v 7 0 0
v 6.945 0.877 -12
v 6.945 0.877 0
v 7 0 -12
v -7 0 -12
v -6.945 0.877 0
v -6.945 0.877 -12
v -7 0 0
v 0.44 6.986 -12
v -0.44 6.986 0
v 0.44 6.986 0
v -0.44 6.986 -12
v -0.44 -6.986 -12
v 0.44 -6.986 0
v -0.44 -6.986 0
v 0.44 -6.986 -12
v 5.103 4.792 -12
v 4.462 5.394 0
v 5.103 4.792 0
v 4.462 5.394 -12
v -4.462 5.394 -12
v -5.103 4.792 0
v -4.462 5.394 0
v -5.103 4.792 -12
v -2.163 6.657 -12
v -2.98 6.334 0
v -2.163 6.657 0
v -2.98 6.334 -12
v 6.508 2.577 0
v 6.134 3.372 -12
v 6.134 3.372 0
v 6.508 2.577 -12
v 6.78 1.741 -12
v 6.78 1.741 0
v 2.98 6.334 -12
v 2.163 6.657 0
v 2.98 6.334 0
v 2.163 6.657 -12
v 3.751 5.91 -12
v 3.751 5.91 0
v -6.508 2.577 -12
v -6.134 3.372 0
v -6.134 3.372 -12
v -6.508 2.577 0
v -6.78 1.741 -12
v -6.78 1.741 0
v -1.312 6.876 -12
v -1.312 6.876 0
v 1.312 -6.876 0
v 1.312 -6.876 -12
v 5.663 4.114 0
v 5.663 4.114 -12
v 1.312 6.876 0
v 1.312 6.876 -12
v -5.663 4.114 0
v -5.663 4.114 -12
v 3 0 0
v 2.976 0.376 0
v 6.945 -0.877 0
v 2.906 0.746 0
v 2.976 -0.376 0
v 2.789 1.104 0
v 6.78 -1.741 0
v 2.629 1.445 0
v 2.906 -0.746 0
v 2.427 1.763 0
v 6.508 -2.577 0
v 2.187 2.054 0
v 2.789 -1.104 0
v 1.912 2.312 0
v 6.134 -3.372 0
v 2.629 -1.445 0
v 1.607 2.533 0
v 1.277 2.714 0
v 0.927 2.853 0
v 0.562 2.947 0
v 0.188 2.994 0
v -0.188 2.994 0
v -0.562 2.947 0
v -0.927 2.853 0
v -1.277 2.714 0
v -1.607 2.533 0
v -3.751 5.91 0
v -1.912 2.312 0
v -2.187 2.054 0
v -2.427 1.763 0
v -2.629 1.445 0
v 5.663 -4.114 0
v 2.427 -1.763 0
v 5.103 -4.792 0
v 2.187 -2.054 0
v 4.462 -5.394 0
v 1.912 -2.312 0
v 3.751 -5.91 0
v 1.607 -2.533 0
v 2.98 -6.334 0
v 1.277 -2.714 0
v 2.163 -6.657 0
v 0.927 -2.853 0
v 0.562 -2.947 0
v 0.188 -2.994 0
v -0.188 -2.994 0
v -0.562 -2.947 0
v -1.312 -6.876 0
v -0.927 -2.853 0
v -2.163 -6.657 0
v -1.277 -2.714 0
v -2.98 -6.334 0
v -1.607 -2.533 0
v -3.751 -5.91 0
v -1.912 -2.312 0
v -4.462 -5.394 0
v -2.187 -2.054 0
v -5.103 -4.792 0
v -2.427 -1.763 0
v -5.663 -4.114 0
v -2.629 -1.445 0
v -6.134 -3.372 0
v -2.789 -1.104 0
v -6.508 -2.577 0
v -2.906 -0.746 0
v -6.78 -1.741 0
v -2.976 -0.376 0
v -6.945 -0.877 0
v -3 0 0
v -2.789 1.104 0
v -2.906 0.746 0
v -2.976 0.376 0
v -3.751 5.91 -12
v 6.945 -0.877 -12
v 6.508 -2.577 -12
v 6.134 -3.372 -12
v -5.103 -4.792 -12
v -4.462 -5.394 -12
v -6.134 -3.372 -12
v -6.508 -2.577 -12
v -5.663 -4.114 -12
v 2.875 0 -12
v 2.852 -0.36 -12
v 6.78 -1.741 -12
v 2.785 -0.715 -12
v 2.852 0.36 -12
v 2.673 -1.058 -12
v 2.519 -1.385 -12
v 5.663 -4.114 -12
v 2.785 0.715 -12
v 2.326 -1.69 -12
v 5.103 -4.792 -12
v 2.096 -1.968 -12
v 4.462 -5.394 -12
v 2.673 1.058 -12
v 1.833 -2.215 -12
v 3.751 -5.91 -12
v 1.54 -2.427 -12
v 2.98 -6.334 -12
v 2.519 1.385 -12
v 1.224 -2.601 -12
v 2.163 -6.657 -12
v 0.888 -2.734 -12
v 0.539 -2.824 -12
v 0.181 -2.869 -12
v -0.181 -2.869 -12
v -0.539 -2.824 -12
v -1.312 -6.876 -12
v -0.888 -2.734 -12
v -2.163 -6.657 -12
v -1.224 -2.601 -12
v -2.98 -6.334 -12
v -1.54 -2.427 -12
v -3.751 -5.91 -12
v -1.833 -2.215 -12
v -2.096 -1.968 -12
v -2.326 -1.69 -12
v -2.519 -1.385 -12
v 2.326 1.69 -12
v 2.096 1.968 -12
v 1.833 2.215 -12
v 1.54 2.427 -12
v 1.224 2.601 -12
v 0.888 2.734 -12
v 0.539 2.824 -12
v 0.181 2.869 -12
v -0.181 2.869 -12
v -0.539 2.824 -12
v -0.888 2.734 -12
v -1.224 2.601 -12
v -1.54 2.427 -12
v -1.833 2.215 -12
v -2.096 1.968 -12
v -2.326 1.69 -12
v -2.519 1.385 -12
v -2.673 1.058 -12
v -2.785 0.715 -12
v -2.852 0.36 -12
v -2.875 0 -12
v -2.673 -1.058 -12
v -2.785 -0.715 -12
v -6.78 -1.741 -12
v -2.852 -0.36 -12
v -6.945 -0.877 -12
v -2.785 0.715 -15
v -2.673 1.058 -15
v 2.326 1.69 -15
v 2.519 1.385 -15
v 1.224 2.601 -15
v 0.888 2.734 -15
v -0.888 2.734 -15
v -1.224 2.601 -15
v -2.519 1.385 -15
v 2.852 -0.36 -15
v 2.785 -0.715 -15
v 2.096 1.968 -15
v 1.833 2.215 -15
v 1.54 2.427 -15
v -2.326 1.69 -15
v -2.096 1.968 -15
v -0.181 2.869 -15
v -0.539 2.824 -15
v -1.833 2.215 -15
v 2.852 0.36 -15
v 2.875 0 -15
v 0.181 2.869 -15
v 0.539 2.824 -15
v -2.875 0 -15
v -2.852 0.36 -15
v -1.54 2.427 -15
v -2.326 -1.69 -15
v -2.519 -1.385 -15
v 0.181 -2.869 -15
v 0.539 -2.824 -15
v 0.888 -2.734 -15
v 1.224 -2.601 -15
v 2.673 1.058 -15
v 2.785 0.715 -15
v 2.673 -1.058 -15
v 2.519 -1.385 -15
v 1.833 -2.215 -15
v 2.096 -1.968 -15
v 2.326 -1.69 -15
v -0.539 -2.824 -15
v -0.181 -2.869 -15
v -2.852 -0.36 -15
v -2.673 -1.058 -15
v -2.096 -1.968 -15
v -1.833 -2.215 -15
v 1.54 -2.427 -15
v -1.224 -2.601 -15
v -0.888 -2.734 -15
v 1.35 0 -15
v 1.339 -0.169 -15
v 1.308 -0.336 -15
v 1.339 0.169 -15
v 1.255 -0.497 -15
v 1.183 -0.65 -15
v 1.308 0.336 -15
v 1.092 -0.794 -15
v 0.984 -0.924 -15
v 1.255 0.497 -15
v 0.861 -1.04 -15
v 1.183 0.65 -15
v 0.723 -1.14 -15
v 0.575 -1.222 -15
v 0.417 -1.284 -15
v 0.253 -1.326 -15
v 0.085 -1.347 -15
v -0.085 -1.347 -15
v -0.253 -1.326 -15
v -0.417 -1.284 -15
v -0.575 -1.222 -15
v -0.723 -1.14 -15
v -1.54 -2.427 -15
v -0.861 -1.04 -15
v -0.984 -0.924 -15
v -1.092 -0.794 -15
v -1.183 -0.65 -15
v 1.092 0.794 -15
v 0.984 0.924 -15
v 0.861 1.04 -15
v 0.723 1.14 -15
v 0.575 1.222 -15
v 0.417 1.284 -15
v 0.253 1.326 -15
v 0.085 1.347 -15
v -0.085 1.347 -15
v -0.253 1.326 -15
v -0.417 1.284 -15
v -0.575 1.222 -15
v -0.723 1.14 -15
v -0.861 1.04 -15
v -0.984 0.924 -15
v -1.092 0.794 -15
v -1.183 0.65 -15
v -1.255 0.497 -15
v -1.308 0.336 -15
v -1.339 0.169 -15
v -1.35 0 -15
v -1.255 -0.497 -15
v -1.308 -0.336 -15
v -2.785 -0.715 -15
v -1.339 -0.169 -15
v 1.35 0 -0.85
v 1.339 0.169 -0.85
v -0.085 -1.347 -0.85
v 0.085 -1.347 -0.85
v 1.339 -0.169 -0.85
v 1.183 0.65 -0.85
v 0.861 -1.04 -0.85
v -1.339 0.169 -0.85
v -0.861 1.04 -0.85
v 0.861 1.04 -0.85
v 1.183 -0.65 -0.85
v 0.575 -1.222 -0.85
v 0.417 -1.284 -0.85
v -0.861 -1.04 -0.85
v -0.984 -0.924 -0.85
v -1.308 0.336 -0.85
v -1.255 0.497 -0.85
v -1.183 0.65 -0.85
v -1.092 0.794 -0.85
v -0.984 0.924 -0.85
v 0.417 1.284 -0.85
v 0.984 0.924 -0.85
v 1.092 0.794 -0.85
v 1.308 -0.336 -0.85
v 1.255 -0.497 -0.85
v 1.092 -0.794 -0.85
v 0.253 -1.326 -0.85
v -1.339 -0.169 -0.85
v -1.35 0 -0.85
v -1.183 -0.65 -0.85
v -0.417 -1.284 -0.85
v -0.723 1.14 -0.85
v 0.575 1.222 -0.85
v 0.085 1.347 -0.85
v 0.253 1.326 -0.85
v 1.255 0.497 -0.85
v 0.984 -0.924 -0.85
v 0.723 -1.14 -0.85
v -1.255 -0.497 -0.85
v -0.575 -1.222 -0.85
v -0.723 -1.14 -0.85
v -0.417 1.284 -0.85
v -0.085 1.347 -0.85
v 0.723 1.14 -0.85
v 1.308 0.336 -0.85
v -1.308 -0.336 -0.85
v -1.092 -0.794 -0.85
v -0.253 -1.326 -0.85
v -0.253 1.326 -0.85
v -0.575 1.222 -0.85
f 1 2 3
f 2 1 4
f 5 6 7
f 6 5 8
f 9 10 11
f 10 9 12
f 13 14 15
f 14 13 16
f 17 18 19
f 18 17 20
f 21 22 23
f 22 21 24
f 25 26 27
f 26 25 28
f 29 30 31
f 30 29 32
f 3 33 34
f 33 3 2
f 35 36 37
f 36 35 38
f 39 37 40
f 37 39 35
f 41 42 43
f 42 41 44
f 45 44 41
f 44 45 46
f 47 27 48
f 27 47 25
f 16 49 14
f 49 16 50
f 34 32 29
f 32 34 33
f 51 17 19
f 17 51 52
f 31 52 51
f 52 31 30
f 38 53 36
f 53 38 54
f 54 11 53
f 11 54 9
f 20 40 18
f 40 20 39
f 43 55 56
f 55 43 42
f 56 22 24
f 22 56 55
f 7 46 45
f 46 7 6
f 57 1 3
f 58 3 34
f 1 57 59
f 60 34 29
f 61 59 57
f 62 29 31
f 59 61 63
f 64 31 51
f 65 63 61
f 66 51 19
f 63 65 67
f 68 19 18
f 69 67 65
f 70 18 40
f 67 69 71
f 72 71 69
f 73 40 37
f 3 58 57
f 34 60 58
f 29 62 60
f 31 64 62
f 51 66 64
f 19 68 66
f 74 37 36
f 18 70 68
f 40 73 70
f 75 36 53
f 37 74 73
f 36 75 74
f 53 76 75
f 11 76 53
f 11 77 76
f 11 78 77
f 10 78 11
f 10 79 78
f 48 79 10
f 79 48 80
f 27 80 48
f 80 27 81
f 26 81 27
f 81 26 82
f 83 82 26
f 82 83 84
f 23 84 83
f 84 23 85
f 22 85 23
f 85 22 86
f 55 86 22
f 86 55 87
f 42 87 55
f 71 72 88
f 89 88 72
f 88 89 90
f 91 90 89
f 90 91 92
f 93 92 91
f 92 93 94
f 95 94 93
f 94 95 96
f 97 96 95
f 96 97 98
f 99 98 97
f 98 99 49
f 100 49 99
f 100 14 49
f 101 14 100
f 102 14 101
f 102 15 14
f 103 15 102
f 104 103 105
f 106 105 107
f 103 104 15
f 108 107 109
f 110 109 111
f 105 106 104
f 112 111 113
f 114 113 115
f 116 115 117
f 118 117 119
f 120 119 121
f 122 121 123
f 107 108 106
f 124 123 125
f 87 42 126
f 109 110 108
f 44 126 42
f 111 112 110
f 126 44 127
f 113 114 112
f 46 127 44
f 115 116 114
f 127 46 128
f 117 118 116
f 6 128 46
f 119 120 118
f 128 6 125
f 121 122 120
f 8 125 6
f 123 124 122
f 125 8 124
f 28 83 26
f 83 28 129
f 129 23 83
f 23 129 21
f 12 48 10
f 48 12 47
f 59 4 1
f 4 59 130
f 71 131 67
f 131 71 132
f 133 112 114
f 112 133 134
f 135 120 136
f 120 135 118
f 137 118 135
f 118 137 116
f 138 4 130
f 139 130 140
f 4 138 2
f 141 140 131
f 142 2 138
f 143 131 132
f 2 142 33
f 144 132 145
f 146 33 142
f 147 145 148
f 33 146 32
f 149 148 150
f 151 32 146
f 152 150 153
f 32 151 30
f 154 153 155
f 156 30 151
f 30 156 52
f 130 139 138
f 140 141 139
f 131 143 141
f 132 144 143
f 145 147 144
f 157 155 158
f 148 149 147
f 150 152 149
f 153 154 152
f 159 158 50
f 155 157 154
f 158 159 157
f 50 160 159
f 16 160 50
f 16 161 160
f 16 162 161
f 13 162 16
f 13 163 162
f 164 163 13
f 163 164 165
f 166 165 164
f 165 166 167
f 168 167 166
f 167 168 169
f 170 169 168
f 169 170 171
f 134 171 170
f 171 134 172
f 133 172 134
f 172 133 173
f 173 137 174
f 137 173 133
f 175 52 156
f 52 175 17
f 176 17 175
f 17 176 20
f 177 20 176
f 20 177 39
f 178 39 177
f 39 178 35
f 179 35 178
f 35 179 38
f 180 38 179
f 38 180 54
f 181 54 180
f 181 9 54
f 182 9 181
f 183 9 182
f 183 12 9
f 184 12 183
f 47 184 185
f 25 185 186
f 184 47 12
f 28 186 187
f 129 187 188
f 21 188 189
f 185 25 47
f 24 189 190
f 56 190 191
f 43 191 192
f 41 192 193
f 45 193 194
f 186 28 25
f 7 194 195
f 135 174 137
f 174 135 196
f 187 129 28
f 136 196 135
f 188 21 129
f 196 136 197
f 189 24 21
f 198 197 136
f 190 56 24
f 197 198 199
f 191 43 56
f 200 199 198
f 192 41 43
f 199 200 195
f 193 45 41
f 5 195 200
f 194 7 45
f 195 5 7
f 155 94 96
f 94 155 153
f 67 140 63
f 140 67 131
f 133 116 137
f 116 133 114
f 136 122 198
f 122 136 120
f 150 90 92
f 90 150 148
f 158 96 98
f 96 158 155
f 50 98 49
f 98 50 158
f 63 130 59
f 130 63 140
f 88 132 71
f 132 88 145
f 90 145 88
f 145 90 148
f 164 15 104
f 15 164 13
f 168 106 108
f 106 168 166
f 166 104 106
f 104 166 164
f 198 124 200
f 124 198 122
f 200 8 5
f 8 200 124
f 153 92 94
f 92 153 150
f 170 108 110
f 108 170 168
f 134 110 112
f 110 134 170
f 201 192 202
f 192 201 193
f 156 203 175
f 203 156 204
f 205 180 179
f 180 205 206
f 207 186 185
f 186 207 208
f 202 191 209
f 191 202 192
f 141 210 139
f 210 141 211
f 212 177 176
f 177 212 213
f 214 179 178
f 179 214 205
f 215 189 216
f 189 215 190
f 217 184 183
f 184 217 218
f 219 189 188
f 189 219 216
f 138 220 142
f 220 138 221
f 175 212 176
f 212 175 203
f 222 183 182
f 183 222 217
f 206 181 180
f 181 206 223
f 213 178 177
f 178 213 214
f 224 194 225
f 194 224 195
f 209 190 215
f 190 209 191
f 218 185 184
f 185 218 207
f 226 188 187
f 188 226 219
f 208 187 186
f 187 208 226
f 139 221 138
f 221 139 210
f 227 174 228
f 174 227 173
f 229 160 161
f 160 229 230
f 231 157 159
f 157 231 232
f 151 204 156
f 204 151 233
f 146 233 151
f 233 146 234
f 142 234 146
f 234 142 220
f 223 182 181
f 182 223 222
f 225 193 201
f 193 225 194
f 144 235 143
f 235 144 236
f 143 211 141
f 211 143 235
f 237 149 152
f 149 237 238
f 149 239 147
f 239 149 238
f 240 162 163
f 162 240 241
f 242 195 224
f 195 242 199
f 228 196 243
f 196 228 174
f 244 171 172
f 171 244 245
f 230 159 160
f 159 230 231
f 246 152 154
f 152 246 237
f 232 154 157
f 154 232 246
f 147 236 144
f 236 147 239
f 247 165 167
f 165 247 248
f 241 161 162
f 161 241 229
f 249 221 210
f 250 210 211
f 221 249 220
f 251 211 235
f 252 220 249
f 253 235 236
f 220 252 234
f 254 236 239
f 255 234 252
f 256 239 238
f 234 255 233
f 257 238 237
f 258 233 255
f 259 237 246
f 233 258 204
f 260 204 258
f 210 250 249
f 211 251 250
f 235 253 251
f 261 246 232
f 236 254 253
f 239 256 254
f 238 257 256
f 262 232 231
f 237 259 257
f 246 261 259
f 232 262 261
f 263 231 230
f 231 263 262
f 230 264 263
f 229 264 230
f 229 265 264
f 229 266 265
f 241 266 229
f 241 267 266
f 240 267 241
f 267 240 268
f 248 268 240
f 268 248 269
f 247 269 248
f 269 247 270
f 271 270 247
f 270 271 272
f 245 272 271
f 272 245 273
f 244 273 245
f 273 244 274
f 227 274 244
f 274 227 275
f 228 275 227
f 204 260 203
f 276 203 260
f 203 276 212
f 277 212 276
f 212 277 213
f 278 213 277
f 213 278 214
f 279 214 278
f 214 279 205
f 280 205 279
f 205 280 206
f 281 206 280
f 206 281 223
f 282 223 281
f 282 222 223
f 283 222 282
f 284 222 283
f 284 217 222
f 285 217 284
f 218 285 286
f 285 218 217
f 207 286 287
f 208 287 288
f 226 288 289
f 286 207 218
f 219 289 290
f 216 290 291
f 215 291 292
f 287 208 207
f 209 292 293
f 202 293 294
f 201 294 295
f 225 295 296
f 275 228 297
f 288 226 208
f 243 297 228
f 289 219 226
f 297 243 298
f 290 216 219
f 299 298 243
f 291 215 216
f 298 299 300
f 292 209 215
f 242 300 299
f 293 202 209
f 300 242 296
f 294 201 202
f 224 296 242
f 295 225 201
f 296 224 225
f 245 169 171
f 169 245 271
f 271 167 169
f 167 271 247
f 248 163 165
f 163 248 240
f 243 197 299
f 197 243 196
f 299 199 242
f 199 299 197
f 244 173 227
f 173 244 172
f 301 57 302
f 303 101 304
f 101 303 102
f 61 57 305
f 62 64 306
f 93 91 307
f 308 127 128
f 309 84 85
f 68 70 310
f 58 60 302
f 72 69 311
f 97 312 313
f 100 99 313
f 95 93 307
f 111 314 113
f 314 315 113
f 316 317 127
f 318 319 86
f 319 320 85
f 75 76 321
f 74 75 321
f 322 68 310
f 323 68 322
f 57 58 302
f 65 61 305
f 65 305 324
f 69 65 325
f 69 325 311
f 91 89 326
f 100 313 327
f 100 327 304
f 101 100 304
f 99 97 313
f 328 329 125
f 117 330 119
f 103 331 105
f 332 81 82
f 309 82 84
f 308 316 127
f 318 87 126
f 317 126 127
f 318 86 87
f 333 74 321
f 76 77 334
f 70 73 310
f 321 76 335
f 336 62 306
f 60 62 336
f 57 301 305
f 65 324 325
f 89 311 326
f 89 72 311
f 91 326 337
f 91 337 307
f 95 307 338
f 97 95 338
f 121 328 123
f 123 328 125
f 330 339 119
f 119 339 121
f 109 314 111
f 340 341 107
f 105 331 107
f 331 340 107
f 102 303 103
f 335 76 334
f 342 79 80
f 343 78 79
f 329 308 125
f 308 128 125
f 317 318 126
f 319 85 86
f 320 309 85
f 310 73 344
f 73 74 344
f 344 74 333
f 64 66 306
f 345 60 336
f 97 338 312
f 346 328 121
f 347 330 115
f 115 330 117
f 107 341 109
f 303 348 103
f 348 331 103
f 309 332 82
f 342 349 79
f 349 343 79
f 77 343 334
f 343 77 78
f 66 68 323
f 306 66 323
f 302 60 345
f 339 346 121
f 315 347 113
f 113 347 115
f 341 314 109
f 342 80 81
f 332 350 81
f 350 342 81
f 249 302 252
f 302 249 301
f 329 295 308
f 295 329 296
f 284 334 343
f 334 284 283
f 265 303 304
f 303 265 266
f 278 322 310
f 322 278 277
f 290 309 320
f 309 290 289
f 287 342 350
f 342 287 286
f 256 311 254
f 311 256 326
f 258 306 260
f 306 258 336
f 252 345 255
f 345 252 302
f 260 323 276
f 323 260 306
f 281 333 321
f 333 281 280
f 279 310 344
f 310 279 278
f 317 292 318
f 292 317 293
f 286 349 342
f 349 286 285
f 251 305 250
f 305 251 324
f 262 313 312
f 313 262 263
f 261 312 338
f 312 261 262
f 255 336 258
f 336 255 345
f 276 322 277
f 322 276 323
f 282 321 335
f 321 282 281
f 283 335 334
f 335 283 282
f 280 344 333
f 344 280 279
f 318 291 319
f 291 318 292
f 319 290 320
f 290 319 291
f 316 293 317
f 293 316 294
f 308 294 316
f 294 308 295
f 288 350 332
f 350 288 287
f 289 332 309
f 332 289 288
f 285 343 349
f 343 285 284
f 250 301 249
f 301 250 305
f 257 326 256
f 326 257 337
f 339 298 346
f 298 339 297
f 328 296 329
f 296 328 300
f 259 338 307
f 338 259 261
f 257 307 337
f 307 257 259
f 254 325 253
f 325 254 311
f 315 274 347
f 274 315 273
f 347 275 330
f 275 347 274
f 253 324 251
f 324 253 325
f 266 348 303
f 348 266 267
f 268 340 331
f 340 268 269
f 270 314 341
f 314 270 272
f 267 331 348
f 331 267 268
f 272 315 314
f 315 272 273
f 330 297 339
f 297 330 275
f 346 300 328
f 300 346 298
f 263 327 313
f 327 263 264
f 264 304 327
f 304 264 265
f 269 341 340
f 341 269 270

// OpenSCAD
$fn = 50;


difference() {
	union() {
		translate(v = [0, 0, -12.0000000000]) {
			cylinder(h = 12, r = 7.0000000000);
		}
		translate(v = [0, 0, -15.0000000000]) {
			cylinder(h = 15, r = 2.8750000000);
		}
	}
	union() {
		translate(v = [0, 0, 0]) {
			rotate(a = [0, 0, 0]) {
				difference() {
					union() {
						translate(v = [0, 0, -15.0000000000]) {
							cylinder(h = 15, r = 1.0000000000);
						}
						translate(v = [0, 0, -0.8500000000]) {
							cylinder(h = 0.8500000000, r1 = 1.3500000000, r2 = 3.0000000000);
						}
						translate(v = [0, 0, -15.0000000000]) {
							cylinder(h = 15, r = 1.3500000000);
						}
						translate(v = [0, 0, -15.0000000000]) {
							cylinder(h = 15, r = 1.0000000000);
						}
					}
					union();
				}
			}
		}
	}
}
